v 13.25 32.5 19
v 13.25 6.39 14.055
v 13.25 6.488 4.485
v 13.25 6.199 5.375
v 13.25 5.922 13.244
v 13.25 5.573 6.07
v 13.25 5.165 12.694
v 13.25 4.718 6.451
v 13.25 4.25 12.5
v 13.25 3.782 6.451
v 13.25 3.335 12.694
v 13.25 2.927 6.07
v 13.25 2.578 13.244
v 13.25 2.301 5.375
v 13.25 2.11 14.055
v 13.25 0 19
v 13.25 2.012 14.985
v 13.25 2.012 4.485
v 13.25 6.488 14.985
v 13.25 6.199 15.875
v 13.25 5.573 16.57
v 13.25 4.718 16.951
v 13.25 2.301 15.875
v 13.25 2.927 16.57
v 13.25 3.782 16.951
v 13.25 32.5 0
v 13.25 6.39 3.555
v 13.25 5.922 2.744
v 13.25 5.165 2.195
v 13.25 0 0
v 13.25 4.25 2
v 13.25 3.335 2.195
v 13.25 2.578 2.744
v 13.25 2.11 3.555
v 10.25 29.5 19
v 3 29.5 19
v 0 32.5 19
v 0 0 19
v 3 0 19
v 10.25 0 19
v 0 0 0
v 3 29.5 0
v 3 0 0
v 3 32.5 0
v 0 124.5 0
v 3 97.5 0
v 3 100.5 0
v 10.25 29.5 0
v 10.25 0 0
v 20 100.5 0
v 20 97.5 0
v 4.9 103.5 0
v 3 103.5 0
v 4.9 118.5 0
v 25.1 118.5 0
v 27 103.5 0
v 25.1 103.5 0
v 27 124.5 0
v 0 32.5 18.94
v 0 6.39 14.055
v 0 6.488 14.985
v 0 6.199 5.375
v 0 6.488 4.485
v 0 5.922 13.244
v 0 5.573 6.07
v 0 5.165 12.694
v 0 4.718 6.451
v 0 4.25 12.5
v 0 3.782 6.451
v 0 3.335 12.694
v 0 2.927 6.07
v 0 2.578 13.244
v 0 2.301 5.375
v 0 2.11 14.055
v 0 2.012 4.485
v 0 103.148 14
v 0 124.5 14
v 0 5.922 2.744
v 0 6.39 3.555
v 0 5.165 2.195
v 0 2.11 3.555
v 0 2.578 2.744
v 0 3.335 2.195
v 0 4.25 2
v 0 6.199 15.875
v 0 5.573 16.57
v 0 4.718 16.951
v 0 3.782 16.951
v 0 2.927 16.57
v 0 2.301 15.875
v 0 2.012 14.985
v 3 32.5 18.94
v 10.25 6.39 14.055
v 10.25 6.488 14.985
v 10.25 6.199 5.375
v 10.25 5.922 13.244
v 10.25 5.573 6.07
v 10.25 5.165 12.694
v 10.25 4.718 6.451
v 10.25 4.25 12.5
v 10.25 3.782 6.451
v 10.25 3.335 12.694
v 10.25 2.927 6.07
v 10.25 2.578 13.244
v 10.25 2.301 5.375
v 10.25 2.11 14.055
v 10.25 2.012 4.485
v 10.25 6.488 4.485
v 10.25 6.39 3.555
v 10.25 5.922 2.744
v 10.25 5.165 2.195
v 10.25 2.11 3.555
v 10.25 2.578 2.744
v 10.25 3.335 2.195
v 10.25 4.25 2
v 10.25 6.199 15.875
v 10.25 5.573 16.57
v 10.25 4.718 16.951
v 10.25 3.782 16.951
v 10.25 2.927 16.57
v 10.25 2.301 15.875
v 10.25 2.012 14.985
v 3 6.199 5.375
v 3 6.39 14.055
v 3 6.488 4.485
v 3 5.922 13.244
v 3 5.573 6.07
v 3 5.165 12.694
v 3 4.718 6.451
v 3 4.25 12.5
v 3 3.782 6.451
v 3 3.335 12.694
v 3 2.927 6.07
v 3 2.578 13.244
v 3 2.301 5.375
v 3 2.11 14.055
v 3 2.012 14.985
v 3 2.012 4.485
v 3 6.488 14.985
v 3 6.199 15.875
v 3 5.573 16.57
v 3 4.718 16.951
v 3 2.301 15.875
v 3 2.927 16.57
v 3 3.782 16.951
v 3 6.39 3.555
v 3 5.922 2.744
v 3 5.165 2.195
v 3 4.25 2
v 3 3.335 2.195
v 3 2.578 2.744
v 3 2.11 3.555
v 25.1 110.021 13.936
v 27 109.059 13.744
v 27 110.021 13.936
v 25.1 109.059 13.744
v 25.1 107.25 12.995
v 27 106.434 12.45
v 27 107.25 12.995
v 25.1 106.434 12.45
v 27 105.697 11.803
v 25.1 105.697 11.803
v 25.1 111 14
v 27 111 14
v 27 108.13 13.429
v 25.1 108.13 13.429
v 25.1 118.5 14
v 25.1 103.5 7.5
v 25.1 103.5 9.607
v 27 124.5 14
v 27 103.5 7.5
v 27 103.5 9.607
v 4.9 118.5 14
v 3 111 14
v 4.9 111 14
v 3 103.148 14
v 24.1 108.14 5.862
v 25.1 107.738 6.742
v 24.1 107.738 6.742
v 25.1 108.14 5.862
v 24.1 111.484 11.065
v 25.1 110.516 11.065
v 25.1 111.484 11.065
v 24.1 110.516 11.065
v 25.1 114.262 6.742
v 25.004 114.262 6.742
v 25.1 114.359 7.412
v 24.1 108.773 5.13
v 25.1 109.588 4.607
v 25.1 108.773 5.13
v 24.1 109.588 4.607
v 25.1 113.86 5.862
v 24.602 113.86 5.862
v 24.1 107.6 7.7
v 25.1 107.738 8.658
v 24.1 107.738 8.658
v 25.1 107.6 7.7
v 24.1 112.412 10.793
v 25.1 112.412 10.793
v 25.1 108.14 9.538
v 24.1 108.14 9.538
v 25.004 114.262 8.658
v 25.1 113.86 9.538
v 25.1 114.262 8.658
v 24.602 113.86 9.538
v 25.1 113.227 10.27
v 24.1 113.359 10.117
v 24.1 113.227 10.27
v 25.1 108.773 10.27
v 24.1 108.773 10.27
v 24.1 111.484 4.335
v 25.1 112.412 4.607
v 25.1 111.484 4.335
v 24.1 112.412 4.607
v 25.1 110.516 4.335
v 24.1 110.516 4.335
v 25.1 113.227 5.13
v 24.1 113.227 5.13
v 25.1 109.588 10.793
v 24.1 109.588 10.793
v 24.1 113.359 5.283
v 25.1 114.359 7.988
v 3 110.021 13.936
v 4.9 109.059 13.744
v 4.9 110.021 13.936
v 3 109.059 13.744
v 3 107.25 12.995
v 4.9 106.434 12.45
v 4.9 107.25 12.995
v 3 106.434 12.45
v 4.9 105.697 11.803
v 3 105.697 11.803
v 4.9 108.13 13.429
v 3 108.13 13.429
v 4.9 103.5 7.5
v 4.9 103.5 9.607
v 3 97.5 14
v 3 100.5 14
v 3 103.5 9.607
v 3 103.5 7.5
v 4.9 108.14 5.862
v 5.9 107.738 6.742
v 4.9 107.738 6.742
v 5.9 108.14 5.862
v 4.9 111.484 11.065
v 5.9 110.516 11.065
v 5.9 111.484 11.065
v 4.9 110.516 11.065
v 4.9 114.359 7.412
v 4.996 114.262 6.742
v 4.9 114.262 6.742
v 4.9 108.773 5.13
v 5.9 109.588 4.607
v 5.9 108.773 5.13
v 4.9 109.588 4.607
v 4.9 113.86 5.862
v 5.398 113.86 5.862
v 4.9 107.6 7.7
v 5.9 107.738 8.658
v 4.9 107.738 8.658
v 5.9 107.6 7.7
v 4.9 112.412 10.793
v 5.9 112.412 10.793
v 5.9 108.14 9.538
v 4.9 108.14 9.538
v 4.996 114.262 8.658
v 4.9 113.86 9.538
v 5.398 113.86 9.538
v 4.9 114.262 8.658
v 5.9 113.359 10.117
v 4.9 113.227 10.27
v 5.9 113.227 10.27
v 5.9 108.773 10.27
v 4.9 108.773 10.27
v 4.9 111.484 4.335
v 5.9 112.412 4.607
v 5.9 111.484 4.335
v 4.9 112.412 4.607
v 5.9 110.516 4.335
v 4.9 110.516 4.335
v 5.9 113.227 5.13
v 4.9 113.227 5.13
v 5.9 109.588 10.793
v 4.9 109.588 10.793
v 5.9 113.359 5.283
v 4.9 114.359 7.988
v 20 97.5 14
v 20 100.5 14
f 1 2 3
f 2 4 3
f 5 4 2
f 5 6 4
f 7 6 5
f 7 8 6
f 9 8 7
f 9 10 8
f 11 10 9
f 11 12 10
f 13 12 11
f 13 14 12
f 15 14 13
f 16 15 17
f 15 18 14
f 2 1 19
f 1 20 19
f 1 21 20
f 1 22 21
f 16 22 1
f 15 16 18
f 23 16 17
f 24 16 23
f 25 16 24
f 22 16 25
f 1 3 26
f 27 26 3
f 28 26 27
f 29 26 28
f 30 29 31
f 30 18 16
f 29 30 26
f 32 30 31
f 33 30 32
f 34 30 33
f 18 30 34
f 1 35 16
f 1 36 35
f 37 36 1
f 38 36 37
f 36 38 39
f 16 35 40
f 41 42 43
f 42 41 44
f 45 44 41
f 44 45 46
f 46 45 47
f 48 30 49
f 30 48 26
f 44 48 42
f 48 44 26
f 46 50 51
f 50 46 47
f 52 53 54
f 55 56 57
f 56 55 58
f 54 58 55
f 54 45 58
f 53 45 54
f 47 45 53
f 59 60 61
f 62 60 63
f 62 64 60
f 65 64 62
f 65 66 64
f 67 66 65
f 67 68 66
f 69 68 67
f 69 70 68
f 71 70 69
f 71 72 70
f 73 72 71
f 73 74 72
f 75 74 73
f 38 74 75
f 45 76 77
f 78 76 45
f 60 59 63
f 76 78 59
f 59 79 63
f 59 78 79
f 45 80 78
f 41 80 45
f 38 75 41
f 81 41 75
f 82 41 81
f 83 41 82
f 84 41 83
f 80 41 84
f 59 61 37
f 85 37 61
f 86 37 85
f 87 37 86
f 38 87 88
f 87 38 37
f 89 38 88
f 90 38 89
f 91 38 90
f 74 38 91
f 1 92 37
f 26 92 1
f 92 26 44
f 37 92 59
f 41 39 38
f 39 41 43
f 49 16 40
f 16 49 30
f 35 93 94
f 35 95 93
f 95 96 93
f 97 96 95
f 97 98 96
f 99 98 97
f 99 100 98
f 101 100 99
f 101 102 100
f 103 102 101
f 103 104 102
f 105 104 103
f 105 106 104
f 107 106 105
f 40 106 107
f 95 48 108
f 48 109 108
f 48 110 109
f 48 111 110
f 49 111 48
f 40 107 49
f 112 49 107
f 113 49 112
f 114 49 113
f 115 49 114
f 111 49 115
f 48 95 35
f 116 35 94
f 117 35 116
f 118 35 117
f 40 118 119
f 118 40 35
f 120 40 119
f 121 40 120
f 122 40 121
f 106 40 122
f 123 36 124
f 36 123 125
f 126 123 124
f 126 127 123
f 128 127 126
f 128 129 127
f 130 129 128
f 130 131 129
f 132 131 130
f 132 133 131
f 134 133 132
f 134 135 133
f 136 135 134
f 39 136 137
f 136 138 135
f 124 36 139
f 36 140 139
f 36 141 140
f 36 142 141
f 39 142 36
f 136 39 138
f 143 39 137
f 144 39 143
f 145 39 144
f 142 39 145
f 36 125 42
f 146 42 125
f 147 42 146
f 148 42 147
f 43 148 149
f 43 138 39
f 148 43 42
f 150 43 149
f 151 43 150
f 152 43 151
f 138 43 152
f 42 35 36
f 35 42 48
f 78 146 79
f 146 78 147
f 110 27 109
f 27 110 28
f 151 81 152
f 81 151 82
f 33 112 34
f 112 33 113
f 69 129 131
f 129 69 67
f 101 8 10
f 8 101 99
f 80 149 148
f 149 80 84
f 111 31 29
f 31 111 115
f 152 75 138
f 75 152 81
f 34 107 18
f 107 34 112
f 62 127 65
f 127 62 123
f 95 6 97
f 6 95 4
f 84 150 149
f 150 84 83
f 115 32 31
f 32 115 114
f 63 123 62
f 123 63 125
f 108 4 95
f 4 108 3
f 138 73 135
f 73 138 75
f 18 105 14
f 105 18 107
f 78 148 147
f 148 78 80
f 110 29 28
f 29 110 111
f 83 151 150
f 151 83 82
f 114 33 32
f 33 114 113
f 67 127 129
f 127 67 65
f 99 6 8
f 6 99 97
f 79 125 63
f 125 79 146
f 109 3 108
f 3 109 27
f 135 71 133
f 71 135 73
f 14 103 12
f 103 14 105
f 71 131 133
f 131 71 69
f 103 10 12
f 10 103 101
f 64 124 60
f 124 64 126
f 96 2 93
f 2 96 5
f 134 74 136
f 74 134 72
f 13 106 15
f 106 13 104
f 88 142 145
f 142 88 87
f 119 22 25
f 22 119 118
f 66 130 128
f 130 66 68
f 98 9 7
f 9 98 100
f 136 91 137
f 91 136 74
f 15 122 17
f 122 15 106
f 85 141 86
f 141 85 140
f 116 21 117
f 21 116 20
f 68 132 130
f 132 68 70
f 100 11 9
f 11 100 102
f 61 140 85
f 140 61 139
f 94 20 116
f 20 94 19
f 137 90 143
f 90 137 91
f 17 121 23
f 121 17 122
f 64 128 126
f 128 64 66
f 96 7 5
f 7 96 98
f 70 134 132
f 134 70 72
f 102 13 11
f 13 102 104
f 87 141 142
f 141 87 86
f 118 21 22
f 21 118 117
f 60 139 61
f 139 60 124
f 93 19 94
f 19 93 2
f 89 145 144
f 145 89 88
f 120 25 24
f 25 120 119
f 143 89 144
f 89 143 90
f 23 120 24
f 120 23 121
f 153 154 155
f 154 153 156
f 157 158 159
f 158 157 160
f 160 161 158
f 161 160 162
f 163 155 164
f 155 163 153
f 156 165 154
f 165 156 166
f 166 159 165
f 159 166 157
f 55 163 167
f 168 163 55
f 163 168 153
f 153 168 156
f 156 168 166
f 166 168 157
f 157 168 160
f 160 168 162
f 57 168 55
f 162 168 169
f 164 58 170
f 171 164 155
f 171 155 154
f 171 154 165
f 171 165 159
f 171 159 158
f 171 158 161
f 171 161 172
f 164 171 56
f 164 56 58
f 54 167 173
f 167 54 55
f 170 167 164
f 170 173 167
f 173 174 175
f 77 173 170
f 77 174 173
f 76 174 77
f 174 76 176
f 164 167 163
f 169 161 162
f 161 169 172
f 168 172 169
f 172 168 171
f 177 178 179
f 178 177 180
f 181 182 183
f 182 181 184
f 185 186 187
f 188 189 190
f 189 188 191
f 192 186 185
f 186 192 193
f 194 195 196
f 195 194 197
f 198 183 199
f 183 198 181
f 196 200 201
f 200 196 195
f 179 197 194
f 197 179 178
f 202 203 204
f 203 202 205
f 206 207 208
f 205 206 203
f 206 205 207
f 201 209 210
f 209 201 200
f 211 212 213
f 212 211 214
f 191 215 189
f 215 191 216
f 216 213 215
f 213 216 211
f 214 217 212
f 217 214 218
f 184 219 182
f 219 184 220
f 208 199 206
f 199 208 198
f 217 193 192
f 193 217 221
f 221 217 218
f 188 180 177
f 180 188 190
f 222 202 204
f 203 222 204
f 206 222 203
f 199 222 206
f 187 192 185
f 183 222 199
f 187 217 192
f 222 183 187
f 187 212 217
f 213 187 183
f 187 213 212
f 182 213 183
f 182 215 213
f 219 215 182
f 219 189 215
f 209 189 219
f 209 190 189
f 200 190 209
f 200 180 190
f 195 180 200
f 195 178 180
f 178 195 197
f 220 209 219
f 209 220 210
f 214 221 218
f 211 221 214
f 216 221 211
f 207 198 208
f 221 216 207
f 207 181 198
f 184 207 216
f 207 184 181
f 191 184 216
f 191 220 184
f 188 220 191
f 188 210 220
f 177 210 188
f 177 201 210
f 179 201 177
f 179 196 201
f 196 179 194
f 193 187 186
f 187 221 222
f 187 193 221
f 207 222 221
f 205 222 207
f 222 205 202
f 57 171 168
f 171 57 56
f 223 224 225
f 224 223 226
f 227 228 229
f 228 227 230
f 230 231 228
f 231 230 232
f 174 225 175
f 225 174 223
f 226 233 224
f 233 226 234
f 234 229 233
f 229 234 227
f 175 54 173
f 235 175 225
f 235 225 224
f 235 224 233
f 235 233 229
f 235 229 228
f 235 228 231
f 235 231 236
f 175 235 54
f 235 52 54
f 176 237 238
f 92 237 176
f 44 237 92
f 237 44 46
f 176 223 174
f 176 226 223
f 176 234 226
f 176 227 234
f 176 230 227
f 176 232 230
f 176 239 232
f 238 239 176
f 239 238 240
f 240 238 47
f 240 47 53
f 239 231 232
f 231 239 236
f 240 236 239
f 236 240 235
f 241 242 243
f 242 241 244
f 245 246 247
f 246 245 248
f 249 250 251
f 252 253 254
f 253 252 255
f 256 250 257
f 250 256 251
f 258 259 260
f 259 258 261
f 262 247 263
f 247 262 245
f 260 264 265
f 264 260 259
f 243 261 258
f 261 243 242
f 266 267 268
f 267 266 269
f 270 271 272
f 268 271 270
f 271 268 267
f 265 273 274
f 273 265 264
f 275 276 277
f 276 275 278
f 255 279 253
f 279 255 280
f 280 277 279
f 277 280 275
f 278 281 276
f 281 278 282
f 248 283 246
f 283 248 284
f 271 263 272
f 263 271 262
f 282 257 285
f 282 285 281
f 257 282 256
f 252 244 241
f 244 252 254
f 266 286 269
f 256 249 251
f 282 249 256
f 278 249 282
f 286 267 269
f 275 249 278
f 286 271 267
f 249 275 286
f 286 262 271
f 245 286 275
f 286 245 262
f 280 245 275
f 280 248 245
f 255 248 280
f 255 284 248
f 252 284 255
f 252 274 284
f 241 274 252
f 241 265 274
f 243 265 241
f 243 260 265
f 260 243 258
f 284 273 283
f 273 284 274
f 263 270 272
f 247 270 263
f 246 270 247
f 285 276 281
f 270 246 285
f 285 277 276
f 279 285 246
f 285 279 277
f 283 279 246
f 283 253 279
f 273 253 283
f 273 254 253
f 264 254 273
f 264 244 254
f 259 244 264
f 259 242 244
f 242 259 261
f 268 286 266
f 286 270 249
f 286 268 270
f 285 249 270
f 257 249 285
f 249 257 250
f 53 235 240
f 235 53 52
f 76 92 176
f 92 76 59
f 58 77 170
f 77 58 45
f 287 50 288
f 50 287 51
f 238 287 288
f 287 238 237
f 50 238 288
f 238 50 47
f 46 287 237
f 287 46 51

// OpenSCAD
// file: ../link.scad
include<parameters.scad>;

module notch_profile(with_tolerance=false) {
    polygon([
        [clip_thickness,
         -1.25 - (with_tolerance ? tolerance/2 : 0)],
        [(with_tolerance ? -.1 : 0),
         -.75 - (with_tolerance ? tolerance/2 : 0)],
        [(with_tolerance ? -.1 : 0),
         .75 + (with_tolerance ? tolerance/2 : 0)],
        [clip_thickness,
         1.25 + (with_tolerance ? tolerance/2 : 0)]
    ]);
}

module link_back() {
    union()
    translate([0, 0, outer_height/2])
    for(n=[0, 1])
    mirror([n, 0, 0])
    translate([-outer_width/2, 0, 0])
    union() {
        translate([0, _trim, 0])
        union() {
            difference() {
                translate([0, -outer_height/2, 0])
                rotate([0, 90, 0])
                cylinder(d=outer_height, h=wall_thickness-tolerance/2);

                translate([-.1, -outer_height/2, -outer_height/2])
                cube([wall_thickness+.2, outer_height/2, outer_height]);
            }

            translate([0, -outer_height, -outer_height/2])
            cube([wall_thickness-tolerance/2, outer_height/2, outer_height/2]);

            radius = (outer_height/2);
            translate([0, -(radius*(1+cos(45))), radius*sin(45)])
            rotate([90, 0, 90])
            linear_extrude(height=wall_thickness-tolerance/2)
            polygon([
                [0, 0],
                [radius*(1-sin(45)), radius*(1-sin(45))],
                [radius*cos(45), radius*(1-sin(45))],
                [radius*cos(45), 0]
            ]);
        }

        translate([0, -outer_height/2, -outer_height/2])
        cube([wall_thickness-tolerance/2, outer_height/2, outer_height]);

        // key
        translate([0, -outer_height/2-tolerance, 0])
        rotate([0, 90, 0])
        translate([0, 0, wall_thickness-.1])
        difference() {
            cylinder(d=key_diameter-tolerance, h=key_depth+.1-tolerance);

            translate([key_diameter/2, -key_diameter/2-1, 0])
            rotate([0, 270-key_slope_bottom, 0])
            translate([0, 0,-.9])
            cube([10,10,1]);
        }
    }
}

module link_mid() {
    translate([0, -mid_depth, 0])
    difference() {
        union() {
            // walls
            translate([0, 0, outer_height/2])
            for(n=[0, 1])
            mirror([n, 0, 0])
            translate([-outer_width/2, 0, -outer_height/2])
            cube([wall_thickness * 2, mid_depth, outer_height]);

            // base
            translate([-outer_width/2, 0, 0])
            cube([outer_width, mid_depth, wall_thickness]);
        }

        // notch cutout
        translate([-outer_width/2-.5, mid_depth/2, outer_height])
        rotate([0, 90, 0])
        linear_extrude(height=outer_width+1)
        notch_profile(true);
    }
}

module link_front() {
    union()
    translate([0, 0, outer_height/2])
    for(n=[0, 1])
    mirror([n, 0, 0])
    translate([-outer_width/2 + wall_thickness, 0, 0])
    difference() {
        union() {
            translate([0, -_trim, 0])
            difference() {
                translate([tolerance/2, outer_height/2, 0])
                rotate([0, 90, 0])
                cylinder(d=outer_height, h=wall_thickness-tolerance/2);

                translate([tolerance-.1, 0, -outer_height/2])
                cube([wall_thickness-tolerance+.2, outer_height/2, outer_height]);
            }

            translate([tolerance/2, 0, -outer_height/2])
            cube([wall_thickness-tolerance/2, outer_height/2-_trim, outer_height]);
        }

        // keyhole
        translate([0, outer_height/2-_trim, 0])
        rotate([0, 90, 0])
        translate([0, 0, -.1])
        cylinder(d=key_diameter+tolerance, h=key_depth+.1+tolerance);
    }
}

module clip() {
    union() {
        for(r=[0, 180])
        rotate([0, 0, r]) {
            translate([outer_width/2-wall_thickness*2.5-tolerance, 0, clip_thickness])
            rotate([0, 90, 0])
            linear_extrude(height=wall_thickness+.25)
            notch_profile(false);

            translate([outer_width/2-wall_thickness*2-clip_curve_thickness, -1.5, 0])
            cube([clip_curve_thickness, 3, clip_thickness]);

            translate([-clip_curve_thickness/2, -clip_curve_thickness, 0])
            cube([clip_curve_thickness, clip_curve_thickness*2, clip_thickness]);

            cyl_radius=(outer_width-wall_thickness*4+clip_curve_thickness)/4;

            translate([cyl_radius-clip_curve_thickness/2, 1, 0])
            difference() {
                cylinder(r=cyl_radius, h=clip_thickness);

                translate([0, 0, -.1])
                cylinder(r=cyl_radius-clip_curve_thickness, h=clip_thickness+.2);

                translate([-outer_width/2, -outer_width/2, -.1])
                cube([outer_width, outer_width/2, clip_thickness + .2]);
            }
        }
    }
}

module full_link() {
    union() {
        translate([0, -mid_depth, 0])
        link_back();
        link_mid();
        link_front();
    }
}

//translate([0, -mid_depth/2, outer_height-clip_thickness])
translate([outer_width, 0, 0])
clip();

full_link();
// file: ../parameters.scad
// design tolerance values, used in some places to ensure fit.  You may modify this value depending on the accuracy of your 3D printer
tolerance = .2;

// full width of chain, including walls
outer_width = 24;
// full height of chain, including base
outer_height = 15;

// length of middle section between back and front of link
mid_depth = 6;

// thickness of walls
wall_thickness = 2;

// the "key" is the circular tab that locks the links together and serves as a rotation axle.
key_diameter = 7;
key_depth = 1.1;
// the bottom of the key has a slope to avoid any filament drooping so manual post-processing shouldn't be necessary. You may not need this; it does give the links a slight tendency to snap out if bent beyond the intended range (though this may also be desirable).
key_slope_bottom = 45;

// Z thickness of overall clip
clip_thickness = 2;
// X/Y thickness of curves that make up the "S" clip shape
clip_curve_thickness = 1.75;

end_screw_hole_diameter = 3.5;

_trim = 1;

$fa = 3;
$fs = 1;
// main file
include<../parameters.scad>
use<../link.scad>

wall_size = 3;

hole_size = 4.5;
hole_inset = 2;

base_clamp_gap = 7.25;
base_clamp_height = 21 + hole_size + hole_inset * 2;
base_depth = 19;

arm_height = 15 + 26 + 30 + outer_height;
arm_depth = outer_height-_trim;

union() {
    difference() {
        // base shell
        cube([
            base_clamp_gap + wall_size*2,
            base_clamp_height + wall_size,
            base_depth
        ]);

        // gap
        translate([wall_size, -.1, -.1])
        cube([
            base_clamp_gap,
            base_clamp_height+.1,
            base_depth+.2
        ]);

        // back hole
        translate([-.1, hole_size/2 + hole_inset, hole_size/2 + hole_inset])
        rotate([0, 90, 0])
        cylinder(h=base_clamp_gap + wall_size*2 + .2, d=hole_size);

        // front hole
        translate([-.1, hole_size/2 + hole_inset, base_depth - (hole_size/2 + hole_inset)])
        rotate([0, 90, 0])
        cylinder(h=base_clamp_gap + wall_size*2 + .2, d=hole_size);
    }

    // arm
    translate([0, base_clamp_height + wall_size - .1, 0])
    cube([
        wall_size,
        arm_height + .2,
        arm_depth
    ]);

    // arm slope
    translate([0, base_clamp_height + wall_size - .1-1, 12])
    rotate([-4, 0, 0])
    cube([
        wall_size,
        arm_height + .2,
        arm_depth/2
    ]);

    //cross bar
    translate([0, base_clamp_height + wall_size + arm_height, 0])
    cube([
        wall_size + outer_width,
        wall_size * 2,
        arm_depth
    ]);

    //lower support
    translate([0, base_clamp_height + arm_height - outer_height - 3, 0])
    cube([
        outer_width-4,
        wall_size,
        arm_depth
    ]);

    // link
    translate([wall_size+outer_width/2, base_clamp_height + wall_size + arm_height, 0])
    rotate([-90, 0, 180])
    link_back();
}
